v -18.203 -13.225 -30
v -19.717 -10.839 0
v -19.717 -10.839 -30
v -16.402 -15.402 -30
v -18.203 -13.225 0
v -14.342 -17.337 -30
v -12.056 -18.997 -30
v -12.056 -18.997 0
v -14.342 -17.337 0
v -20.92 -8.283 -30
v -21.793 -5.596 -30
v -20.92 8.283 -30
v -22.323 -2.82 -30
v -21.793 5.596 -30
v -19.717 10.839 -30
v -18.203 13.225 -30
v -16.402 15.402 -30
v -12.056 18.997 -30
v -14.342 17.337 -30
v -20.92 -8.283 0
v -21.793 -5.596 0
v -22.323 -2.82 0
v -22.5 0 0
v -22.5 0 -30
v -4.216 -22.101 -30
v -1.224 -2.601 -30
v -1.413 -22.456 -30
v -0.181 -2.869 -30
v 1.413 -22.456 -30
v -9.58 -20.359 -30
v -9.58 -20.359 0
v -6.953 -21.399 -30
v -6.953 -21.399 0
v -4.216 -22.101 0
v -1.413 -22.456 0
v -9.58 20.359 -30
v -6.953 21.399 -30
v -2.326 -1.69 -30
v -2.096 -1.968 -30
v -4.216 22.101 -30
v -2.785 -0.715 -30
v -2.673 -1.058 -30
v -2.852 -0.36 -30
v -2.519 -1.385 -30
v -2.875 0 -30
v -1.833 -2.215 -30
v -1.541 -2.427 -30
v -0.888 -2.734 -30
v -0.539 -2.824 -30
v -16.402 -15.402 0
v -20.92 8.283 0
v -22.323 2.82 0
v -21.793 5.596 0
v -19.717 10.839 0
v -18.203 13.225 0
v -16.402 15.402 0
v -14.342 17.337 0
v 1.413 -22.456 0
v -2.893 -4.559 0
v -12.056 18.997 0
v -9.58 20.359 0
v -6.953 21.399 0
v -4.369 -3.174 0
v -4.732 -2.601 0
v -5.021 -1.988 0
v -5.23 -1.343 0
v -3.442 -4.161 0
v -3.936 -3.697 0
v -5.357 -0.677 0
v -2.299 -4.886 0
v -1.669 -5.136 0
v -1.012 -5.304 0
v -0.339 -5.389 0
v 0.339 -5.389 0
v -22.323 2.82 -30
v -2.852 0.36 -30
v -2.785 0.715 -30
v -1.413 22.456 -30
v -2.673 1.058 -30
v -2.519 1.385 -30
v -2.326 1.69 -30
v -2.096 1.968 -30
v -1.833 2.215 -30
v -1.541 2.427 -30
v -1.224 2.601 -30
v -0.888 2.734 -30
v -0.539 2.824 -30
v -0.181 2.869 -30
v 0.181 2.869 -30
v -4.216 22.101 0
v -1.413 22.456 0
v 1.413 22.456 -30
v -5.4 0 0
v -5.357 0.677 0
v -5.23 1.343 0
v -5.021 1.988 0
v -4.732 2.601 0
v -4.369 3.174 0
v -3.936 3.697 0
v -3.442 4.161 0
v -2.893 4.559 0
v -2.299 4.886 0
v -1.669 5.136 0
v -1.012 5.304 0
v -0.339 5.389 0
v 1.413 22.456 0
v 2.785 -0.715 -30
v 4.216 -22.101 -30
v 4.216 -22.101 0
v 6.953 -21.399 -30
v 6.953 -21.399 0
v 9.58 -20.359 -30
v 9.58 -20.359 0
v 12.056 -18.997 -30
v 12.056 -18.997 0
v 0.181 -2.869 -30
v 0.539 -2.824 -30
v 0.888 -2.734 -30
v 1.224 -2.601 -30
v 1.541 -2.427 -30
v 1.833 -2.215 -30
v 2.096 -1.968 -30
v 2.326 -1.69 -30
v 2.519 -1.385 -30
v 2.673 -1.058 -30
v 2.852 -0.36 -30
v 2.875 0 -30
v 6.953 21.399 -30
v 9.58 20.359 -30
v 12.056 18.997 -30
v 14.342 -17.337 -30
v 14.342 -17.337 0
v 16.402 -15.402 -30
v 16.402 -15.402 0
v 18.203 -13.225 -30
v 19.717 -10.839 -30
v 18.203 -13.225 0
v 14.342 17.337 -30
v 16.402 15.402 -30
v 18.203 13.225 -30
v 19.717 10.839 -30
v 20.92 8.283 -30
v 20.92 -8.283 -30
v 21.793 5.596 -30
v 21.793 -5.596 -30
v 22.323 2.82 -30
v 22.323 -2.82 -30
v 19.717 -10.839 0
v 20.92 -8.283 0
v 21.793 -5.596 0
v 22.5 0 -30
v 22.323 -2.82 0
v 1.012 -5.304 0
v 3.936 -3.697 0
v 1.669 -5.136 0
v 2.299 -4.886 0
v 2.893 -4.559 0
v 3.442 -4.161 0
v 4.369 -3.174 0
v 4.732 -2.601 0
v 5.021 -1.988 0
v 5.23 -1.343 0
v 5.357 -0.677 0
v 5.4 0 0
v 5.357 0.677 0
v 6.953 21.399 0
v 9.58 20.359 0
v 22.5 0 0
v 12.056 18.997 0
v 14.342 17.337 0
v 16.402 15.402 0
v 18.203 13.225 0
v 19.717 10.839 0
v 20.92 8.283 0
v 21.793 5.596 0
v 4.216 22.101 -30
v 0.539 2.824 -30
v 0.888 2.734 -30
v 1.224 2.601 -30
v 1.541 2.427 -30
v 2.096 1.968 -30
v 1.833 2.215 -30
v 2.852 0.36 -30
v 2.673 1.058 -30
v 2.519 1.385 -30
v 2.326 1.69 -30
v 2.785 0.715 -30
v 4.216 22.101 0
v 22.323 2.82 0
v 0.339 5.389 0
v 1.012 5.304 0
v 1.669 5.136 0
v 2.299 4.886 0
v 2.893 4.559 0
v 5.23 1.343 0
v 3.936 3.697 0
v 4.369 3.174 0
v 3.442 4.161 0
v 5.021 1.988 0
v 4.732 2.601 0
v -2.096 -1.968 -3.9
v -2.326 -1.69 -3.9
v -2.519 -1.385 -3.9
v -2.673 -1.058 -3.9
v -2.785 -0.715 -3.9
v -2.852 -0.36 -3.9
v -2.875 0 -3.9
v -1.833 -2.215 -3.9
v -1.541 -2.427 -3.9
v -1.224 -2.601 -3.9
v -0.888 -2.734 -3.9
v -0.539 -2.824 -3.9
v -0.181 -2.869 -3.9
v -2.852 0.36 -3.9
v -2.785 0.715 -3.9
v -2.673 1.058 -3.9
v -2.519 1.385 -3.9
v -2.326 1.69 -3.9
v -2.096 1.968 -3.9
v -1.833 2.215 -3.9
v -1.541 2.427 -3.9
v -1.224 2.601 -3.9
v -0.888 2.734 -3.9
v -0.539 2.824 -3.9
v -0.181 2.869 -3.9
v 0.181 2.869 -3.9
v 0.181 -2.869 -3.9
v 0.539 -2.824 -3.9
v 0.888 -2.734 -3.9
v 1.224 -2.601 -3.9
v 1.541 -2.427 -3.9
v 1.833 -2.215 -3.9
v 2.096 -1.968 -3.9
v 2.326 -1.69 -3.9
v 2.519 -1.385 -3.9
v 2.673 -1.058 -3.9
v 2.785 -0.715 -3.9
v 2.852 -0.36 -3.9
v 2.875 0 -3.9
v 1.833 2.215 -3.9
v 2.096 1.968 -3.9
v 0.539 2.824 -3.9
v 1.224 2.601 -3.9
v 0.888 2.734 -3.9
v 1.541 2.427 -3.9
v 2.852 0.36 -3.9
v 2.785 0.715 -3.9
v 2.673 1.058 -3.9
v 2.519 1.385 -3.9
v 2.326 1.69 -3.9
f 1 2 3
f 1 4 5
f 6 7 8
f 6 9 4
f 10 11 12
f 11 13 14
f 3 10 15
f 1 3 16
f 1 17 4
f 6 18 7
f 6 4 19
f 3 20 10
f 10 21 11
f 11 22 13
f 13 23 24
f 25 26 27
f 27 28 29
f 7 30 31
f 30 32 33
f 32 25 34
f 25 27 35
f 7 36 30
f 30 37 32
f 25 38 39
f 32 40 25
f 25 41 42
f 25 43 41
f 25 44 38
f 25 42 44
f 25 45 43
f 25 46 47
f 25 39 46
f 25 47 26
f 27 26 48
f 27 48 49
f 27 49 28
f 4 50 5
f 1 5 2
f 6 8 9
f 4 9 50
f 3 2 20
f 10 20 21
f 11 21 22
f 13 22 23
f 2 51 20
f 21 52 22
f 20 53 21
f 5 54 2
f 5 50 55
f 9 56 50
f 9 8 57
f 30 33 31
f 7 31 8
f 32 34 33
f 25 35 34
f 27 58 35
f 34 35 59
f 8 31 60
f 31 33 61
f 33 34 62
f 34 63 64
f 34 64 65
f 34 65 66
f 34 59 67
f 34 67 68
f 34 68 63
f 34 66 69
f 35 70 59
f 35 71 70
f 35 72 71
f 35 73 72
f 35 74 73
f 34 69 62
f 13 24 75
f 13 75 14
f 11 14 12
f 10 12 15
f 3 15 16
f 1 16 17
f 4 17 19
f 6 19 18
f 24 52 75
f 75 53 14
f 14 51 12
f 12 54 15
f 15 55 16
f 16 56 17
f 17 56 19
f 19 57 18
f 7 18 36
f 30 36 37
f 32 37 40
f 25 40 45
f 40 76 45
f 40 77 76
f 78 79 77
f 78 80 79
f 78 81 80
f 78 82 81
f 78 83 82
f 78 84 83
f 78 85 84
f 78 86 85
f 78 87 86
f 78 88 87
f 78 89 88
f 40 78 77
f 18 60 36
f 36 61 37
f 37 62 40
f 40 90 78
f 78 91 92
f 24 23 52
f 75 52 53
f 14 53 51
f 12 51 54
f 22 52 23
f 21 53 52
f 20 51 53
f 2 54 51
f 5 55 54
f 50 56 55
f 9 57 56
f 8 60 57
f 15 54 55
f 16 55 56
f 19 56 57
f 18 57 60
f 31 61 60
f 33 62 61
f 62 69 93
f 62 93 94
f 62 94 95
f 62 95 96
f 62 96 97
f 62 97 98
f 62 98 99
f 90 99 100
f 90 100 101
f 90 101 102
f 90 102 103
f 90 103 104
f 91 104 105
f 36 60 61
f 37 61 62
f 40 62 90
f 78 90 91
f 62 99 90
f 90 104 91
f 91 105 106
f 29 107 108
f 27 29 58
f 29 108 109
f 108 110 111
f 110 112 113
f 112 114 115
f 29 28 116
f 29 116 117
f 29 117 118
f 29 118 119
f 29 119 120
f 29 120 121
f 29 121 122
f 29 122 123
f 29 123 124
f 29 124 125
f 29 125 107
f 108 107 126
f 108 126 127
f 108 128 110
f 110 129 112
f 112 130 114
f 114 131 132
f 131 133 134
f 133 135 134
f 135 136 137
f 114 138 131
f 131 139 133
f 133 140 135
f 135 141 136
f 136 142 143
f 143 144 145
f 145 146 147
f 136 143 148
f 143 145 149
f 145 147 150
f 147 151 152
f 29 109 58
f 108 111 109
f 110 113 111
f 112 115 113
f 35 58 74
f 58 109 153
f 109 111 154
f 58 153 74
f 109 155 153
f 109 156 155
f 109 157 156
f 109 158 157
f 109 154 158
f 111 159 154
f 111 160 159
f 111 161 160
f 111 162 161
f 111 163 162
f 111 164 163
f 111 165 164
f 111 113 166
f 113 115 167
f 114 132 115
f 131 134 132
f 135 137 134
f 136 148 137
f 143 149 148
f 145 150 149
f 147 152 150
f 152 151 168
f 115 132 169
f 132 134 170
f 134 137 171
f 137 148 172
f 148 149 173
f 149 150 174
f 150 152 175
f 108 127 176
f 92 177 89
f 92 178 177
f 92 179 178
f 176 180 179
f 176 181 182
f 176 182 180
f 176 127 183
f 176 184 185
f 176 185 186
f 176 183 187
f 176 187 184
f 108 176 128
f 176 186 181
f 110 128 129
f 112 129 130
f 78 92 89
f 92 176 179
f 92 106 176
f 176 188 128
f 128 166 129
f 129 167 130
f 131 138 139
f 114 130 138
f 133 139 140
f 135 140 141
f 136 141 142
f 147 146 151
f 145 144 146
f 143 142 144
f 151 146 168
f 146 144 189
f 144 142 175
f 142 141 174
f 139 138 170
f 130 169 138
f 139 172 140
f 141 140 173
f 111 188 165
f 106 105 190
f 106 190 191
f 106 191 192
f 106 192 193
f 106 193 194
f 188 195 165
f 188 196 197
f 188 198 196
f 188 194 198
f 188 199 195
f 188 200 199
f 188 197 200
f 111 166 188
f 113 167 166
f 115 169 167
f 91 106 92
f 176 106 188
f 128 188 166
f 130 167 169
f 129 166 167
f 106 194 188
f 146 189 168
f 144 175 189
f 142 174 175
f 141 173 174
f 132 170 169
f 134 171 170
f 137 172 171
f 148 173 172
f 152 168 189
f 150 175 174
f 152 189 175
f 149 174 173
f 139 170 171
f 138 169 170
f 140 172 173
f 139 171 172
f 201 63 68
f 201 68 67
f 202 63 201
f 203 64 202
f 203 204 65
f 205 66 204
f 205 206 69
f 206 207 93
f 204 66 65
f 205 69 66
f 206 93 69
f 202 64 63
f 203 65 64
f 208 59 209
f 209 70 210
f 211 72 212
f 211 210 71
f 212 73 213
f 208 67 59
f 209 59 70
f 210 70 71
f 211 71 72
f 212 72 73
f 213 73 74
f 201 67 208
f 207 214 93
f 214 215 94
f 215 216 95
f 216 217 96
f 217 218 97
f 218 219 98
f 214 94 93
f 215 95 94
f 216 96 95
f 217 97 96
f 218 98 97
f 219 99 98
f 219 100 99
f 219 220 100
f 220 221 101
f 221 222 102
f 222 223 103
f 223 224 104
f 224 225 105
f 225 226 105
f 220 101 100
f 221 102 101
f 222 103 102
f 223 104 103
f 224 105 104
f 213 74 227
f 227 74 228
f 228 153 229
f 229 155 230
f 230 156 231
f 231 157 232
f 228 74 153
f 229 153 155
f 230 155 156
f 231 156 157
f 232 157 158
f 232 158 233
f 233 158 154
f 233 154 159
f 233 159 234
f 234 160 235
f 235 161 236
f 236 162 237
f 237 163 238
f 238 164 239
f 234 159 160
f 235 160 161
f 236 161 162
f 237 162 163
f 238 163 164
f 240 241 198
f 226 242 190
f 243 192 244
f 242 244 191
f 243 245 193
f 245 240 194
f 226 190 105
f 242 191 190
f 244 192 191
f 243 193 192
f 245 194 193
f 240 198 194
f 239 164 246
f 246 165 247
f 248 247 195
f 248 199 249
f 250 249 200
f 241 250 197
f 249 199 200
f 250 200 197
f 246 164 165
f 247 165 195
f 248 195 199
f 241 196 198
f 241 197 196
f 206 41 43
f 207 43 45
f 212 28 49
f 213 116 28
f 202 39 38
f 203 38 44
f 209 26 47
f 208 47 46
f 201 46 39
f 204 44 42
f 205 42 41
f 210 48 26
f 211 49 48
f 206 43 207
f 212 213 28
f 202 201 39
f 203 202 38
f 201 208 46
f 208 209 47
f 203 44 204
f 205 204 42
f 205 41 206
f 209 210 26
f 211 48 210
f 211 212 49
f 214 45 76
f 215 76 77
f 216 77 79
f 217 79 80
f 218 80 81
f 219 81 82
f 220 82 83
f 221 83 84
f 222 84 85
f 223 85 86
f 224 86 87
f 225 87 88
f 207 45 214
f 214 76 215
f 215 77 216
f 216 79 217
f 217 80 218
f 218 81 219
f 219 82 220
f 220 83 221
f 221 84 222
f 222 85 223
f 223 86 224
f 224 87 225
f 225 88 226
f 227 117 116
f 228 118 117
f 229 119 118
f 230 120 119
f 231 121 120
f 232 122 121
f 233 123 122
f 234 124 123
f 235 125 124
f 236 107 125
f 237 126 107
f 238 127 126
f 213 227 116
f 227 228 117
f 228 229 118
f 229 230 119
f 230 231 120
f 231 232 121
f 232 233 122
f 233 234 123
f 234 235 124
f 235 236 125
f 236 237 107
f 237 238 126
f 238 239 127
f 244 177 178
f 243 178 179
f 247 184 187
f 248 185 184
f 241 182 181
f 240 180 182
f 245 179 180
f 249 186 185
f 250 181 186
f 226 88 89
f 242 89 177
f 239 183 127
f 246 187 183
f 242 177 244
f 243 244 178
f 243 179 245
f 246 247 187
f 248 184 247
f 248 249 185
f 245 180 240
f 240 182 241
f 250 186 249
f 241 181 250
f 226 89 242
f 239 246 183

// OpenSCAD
$fn = 50;

difference() {
	union() {
		translate(v = [0, 0, -30.0]) {
			cylinder(h = 30, r = 22.5);
		}
		#translate(v = [0, 0, -33.0]) {
			cylinder(h = 33, r = 2.875);
		}
	}
	union() {
		translate(v = [0, 0, 0]) {
			rotate(a = [0, 0, 0]) {
				difference() {
					union() {
						translate(v = [0, 0, -33.0]) {
							cylinder(h = 33, r = 2.6);
						}
						translate(v = [0, 0, -3.9]) {
							cylinder(h = 3.9, r1 = 2.875, r2 = 5.4);
						}
						translate(v = [0, 0, -33.0]) {
							cylinder(h = 33, r = 2.875);
						}
						translate(v = [0, 0, -33.0]) {
							cylinder(h = 33, r = 2.6);
						}
					}
					union();
				}
			}
		}
	}
}
